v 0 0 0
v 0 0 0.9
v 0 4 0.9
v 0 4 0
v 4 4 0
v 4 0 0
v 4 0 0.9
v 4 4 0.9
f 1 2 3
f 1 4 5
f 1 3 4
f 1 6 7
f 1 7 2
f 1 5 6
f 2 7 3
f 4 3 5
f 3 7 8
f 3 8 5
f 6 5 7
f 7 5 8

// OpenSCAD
/* Warning, this is a very basic generator with a lot of approximation 
input data : [DFN, M8X, 4x4x0.9mm, 8, , E, C04-00131E]
generated by com.zoubworld.electronics.cad.model3d.Basic
Date : Sun Feb 15 10:50:48 CET 2026
*/

//body
color("black")
translate([0,0,0])
cube([4.0,4.0,0.9], center=false);
